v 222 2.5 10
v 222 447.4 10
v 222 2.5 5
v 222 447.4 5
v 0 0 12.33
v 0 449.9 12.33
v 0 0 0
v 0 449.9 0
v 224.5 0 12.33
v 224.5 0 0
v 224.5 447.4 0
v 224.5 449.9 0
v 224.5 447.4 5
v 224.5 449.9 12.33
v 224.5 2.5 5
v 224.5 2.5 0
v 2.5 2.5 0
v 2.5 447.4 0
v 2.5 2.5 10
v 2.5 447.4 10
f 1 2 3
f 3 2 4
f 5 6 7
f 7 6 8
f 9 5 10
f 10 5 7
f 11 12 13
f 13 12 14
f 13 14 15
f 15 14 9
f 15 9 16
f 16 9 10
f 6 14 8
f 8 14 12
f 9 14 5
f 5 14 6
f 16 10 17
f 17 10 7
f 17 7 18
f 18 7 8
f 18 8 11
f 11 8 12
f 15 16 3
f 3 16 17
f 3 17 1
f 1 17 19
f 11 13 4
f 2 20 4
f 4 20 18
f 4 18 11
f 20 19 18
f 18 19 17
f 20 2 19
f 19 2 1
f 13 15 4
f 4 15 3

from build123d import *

# Parameters (mm, degrees)
SZKIC1_W                    = 224.5
SZKIC1_H                    = 449.9
DODANIE_WYCI_GNI_CIE1_DEPTH = 12.33
SZKIC2_W                    = 219.5
SZKIC2_H                    = 444.9
WYTNIJ_WYCI_GNI_CIE1_DEPTH  = 10
SZKIC4_W                    = 2.5
SZKIC4_H                    = 444.9
WYTNIJ_WYCI_GNI_CIE3_DEPTH  = 5


with BuildPart() as part:
    # Szkic1 → Dodanie-wyciągnięcie1 (new body)
    with BuildSketch(Plane.XY):
        with Locations((112.25, 224.95)):
            Rectangle(SZKIC1_W, SZKIC1_H)
    extrude(amount=DODANIE_WYCI_GNI_CIE1_DEPTH)

    # Szkic2 → Wytnij-wyciągnięcie1 (cut)
    with BuildSketch(Plane(origin=(0, 0, 0), x_dir=(-1, 0, 0), z_dir=(0, 0, -1))):
        with Locations((-112.25, 224.95)):
            Rectangle(SZKIC2_W, SZKIC2_H)
    extrude(amount=-WYTNIJ_WYCI_GNI_CIE1_DEPTH, mode=Mode.SUBTRACT)

    # Szkic4 → Wytnij-wyciągnięcie3 (cut)
    with BuildSketch(Plane(origin=(0, 0, 0), x_dir=(-1, 0, 0), z_dir=(0, 0, -1))):
        with Locations((-223.25, 224.95)):
            Rectangle(SZKIC4_W, SZKIC4_H)
    extrude(amount=-WYTNIJ_WYCI_GNI_CIE3_DEPTH, mode=Mode.SUBTRACT)


solid = part.part
